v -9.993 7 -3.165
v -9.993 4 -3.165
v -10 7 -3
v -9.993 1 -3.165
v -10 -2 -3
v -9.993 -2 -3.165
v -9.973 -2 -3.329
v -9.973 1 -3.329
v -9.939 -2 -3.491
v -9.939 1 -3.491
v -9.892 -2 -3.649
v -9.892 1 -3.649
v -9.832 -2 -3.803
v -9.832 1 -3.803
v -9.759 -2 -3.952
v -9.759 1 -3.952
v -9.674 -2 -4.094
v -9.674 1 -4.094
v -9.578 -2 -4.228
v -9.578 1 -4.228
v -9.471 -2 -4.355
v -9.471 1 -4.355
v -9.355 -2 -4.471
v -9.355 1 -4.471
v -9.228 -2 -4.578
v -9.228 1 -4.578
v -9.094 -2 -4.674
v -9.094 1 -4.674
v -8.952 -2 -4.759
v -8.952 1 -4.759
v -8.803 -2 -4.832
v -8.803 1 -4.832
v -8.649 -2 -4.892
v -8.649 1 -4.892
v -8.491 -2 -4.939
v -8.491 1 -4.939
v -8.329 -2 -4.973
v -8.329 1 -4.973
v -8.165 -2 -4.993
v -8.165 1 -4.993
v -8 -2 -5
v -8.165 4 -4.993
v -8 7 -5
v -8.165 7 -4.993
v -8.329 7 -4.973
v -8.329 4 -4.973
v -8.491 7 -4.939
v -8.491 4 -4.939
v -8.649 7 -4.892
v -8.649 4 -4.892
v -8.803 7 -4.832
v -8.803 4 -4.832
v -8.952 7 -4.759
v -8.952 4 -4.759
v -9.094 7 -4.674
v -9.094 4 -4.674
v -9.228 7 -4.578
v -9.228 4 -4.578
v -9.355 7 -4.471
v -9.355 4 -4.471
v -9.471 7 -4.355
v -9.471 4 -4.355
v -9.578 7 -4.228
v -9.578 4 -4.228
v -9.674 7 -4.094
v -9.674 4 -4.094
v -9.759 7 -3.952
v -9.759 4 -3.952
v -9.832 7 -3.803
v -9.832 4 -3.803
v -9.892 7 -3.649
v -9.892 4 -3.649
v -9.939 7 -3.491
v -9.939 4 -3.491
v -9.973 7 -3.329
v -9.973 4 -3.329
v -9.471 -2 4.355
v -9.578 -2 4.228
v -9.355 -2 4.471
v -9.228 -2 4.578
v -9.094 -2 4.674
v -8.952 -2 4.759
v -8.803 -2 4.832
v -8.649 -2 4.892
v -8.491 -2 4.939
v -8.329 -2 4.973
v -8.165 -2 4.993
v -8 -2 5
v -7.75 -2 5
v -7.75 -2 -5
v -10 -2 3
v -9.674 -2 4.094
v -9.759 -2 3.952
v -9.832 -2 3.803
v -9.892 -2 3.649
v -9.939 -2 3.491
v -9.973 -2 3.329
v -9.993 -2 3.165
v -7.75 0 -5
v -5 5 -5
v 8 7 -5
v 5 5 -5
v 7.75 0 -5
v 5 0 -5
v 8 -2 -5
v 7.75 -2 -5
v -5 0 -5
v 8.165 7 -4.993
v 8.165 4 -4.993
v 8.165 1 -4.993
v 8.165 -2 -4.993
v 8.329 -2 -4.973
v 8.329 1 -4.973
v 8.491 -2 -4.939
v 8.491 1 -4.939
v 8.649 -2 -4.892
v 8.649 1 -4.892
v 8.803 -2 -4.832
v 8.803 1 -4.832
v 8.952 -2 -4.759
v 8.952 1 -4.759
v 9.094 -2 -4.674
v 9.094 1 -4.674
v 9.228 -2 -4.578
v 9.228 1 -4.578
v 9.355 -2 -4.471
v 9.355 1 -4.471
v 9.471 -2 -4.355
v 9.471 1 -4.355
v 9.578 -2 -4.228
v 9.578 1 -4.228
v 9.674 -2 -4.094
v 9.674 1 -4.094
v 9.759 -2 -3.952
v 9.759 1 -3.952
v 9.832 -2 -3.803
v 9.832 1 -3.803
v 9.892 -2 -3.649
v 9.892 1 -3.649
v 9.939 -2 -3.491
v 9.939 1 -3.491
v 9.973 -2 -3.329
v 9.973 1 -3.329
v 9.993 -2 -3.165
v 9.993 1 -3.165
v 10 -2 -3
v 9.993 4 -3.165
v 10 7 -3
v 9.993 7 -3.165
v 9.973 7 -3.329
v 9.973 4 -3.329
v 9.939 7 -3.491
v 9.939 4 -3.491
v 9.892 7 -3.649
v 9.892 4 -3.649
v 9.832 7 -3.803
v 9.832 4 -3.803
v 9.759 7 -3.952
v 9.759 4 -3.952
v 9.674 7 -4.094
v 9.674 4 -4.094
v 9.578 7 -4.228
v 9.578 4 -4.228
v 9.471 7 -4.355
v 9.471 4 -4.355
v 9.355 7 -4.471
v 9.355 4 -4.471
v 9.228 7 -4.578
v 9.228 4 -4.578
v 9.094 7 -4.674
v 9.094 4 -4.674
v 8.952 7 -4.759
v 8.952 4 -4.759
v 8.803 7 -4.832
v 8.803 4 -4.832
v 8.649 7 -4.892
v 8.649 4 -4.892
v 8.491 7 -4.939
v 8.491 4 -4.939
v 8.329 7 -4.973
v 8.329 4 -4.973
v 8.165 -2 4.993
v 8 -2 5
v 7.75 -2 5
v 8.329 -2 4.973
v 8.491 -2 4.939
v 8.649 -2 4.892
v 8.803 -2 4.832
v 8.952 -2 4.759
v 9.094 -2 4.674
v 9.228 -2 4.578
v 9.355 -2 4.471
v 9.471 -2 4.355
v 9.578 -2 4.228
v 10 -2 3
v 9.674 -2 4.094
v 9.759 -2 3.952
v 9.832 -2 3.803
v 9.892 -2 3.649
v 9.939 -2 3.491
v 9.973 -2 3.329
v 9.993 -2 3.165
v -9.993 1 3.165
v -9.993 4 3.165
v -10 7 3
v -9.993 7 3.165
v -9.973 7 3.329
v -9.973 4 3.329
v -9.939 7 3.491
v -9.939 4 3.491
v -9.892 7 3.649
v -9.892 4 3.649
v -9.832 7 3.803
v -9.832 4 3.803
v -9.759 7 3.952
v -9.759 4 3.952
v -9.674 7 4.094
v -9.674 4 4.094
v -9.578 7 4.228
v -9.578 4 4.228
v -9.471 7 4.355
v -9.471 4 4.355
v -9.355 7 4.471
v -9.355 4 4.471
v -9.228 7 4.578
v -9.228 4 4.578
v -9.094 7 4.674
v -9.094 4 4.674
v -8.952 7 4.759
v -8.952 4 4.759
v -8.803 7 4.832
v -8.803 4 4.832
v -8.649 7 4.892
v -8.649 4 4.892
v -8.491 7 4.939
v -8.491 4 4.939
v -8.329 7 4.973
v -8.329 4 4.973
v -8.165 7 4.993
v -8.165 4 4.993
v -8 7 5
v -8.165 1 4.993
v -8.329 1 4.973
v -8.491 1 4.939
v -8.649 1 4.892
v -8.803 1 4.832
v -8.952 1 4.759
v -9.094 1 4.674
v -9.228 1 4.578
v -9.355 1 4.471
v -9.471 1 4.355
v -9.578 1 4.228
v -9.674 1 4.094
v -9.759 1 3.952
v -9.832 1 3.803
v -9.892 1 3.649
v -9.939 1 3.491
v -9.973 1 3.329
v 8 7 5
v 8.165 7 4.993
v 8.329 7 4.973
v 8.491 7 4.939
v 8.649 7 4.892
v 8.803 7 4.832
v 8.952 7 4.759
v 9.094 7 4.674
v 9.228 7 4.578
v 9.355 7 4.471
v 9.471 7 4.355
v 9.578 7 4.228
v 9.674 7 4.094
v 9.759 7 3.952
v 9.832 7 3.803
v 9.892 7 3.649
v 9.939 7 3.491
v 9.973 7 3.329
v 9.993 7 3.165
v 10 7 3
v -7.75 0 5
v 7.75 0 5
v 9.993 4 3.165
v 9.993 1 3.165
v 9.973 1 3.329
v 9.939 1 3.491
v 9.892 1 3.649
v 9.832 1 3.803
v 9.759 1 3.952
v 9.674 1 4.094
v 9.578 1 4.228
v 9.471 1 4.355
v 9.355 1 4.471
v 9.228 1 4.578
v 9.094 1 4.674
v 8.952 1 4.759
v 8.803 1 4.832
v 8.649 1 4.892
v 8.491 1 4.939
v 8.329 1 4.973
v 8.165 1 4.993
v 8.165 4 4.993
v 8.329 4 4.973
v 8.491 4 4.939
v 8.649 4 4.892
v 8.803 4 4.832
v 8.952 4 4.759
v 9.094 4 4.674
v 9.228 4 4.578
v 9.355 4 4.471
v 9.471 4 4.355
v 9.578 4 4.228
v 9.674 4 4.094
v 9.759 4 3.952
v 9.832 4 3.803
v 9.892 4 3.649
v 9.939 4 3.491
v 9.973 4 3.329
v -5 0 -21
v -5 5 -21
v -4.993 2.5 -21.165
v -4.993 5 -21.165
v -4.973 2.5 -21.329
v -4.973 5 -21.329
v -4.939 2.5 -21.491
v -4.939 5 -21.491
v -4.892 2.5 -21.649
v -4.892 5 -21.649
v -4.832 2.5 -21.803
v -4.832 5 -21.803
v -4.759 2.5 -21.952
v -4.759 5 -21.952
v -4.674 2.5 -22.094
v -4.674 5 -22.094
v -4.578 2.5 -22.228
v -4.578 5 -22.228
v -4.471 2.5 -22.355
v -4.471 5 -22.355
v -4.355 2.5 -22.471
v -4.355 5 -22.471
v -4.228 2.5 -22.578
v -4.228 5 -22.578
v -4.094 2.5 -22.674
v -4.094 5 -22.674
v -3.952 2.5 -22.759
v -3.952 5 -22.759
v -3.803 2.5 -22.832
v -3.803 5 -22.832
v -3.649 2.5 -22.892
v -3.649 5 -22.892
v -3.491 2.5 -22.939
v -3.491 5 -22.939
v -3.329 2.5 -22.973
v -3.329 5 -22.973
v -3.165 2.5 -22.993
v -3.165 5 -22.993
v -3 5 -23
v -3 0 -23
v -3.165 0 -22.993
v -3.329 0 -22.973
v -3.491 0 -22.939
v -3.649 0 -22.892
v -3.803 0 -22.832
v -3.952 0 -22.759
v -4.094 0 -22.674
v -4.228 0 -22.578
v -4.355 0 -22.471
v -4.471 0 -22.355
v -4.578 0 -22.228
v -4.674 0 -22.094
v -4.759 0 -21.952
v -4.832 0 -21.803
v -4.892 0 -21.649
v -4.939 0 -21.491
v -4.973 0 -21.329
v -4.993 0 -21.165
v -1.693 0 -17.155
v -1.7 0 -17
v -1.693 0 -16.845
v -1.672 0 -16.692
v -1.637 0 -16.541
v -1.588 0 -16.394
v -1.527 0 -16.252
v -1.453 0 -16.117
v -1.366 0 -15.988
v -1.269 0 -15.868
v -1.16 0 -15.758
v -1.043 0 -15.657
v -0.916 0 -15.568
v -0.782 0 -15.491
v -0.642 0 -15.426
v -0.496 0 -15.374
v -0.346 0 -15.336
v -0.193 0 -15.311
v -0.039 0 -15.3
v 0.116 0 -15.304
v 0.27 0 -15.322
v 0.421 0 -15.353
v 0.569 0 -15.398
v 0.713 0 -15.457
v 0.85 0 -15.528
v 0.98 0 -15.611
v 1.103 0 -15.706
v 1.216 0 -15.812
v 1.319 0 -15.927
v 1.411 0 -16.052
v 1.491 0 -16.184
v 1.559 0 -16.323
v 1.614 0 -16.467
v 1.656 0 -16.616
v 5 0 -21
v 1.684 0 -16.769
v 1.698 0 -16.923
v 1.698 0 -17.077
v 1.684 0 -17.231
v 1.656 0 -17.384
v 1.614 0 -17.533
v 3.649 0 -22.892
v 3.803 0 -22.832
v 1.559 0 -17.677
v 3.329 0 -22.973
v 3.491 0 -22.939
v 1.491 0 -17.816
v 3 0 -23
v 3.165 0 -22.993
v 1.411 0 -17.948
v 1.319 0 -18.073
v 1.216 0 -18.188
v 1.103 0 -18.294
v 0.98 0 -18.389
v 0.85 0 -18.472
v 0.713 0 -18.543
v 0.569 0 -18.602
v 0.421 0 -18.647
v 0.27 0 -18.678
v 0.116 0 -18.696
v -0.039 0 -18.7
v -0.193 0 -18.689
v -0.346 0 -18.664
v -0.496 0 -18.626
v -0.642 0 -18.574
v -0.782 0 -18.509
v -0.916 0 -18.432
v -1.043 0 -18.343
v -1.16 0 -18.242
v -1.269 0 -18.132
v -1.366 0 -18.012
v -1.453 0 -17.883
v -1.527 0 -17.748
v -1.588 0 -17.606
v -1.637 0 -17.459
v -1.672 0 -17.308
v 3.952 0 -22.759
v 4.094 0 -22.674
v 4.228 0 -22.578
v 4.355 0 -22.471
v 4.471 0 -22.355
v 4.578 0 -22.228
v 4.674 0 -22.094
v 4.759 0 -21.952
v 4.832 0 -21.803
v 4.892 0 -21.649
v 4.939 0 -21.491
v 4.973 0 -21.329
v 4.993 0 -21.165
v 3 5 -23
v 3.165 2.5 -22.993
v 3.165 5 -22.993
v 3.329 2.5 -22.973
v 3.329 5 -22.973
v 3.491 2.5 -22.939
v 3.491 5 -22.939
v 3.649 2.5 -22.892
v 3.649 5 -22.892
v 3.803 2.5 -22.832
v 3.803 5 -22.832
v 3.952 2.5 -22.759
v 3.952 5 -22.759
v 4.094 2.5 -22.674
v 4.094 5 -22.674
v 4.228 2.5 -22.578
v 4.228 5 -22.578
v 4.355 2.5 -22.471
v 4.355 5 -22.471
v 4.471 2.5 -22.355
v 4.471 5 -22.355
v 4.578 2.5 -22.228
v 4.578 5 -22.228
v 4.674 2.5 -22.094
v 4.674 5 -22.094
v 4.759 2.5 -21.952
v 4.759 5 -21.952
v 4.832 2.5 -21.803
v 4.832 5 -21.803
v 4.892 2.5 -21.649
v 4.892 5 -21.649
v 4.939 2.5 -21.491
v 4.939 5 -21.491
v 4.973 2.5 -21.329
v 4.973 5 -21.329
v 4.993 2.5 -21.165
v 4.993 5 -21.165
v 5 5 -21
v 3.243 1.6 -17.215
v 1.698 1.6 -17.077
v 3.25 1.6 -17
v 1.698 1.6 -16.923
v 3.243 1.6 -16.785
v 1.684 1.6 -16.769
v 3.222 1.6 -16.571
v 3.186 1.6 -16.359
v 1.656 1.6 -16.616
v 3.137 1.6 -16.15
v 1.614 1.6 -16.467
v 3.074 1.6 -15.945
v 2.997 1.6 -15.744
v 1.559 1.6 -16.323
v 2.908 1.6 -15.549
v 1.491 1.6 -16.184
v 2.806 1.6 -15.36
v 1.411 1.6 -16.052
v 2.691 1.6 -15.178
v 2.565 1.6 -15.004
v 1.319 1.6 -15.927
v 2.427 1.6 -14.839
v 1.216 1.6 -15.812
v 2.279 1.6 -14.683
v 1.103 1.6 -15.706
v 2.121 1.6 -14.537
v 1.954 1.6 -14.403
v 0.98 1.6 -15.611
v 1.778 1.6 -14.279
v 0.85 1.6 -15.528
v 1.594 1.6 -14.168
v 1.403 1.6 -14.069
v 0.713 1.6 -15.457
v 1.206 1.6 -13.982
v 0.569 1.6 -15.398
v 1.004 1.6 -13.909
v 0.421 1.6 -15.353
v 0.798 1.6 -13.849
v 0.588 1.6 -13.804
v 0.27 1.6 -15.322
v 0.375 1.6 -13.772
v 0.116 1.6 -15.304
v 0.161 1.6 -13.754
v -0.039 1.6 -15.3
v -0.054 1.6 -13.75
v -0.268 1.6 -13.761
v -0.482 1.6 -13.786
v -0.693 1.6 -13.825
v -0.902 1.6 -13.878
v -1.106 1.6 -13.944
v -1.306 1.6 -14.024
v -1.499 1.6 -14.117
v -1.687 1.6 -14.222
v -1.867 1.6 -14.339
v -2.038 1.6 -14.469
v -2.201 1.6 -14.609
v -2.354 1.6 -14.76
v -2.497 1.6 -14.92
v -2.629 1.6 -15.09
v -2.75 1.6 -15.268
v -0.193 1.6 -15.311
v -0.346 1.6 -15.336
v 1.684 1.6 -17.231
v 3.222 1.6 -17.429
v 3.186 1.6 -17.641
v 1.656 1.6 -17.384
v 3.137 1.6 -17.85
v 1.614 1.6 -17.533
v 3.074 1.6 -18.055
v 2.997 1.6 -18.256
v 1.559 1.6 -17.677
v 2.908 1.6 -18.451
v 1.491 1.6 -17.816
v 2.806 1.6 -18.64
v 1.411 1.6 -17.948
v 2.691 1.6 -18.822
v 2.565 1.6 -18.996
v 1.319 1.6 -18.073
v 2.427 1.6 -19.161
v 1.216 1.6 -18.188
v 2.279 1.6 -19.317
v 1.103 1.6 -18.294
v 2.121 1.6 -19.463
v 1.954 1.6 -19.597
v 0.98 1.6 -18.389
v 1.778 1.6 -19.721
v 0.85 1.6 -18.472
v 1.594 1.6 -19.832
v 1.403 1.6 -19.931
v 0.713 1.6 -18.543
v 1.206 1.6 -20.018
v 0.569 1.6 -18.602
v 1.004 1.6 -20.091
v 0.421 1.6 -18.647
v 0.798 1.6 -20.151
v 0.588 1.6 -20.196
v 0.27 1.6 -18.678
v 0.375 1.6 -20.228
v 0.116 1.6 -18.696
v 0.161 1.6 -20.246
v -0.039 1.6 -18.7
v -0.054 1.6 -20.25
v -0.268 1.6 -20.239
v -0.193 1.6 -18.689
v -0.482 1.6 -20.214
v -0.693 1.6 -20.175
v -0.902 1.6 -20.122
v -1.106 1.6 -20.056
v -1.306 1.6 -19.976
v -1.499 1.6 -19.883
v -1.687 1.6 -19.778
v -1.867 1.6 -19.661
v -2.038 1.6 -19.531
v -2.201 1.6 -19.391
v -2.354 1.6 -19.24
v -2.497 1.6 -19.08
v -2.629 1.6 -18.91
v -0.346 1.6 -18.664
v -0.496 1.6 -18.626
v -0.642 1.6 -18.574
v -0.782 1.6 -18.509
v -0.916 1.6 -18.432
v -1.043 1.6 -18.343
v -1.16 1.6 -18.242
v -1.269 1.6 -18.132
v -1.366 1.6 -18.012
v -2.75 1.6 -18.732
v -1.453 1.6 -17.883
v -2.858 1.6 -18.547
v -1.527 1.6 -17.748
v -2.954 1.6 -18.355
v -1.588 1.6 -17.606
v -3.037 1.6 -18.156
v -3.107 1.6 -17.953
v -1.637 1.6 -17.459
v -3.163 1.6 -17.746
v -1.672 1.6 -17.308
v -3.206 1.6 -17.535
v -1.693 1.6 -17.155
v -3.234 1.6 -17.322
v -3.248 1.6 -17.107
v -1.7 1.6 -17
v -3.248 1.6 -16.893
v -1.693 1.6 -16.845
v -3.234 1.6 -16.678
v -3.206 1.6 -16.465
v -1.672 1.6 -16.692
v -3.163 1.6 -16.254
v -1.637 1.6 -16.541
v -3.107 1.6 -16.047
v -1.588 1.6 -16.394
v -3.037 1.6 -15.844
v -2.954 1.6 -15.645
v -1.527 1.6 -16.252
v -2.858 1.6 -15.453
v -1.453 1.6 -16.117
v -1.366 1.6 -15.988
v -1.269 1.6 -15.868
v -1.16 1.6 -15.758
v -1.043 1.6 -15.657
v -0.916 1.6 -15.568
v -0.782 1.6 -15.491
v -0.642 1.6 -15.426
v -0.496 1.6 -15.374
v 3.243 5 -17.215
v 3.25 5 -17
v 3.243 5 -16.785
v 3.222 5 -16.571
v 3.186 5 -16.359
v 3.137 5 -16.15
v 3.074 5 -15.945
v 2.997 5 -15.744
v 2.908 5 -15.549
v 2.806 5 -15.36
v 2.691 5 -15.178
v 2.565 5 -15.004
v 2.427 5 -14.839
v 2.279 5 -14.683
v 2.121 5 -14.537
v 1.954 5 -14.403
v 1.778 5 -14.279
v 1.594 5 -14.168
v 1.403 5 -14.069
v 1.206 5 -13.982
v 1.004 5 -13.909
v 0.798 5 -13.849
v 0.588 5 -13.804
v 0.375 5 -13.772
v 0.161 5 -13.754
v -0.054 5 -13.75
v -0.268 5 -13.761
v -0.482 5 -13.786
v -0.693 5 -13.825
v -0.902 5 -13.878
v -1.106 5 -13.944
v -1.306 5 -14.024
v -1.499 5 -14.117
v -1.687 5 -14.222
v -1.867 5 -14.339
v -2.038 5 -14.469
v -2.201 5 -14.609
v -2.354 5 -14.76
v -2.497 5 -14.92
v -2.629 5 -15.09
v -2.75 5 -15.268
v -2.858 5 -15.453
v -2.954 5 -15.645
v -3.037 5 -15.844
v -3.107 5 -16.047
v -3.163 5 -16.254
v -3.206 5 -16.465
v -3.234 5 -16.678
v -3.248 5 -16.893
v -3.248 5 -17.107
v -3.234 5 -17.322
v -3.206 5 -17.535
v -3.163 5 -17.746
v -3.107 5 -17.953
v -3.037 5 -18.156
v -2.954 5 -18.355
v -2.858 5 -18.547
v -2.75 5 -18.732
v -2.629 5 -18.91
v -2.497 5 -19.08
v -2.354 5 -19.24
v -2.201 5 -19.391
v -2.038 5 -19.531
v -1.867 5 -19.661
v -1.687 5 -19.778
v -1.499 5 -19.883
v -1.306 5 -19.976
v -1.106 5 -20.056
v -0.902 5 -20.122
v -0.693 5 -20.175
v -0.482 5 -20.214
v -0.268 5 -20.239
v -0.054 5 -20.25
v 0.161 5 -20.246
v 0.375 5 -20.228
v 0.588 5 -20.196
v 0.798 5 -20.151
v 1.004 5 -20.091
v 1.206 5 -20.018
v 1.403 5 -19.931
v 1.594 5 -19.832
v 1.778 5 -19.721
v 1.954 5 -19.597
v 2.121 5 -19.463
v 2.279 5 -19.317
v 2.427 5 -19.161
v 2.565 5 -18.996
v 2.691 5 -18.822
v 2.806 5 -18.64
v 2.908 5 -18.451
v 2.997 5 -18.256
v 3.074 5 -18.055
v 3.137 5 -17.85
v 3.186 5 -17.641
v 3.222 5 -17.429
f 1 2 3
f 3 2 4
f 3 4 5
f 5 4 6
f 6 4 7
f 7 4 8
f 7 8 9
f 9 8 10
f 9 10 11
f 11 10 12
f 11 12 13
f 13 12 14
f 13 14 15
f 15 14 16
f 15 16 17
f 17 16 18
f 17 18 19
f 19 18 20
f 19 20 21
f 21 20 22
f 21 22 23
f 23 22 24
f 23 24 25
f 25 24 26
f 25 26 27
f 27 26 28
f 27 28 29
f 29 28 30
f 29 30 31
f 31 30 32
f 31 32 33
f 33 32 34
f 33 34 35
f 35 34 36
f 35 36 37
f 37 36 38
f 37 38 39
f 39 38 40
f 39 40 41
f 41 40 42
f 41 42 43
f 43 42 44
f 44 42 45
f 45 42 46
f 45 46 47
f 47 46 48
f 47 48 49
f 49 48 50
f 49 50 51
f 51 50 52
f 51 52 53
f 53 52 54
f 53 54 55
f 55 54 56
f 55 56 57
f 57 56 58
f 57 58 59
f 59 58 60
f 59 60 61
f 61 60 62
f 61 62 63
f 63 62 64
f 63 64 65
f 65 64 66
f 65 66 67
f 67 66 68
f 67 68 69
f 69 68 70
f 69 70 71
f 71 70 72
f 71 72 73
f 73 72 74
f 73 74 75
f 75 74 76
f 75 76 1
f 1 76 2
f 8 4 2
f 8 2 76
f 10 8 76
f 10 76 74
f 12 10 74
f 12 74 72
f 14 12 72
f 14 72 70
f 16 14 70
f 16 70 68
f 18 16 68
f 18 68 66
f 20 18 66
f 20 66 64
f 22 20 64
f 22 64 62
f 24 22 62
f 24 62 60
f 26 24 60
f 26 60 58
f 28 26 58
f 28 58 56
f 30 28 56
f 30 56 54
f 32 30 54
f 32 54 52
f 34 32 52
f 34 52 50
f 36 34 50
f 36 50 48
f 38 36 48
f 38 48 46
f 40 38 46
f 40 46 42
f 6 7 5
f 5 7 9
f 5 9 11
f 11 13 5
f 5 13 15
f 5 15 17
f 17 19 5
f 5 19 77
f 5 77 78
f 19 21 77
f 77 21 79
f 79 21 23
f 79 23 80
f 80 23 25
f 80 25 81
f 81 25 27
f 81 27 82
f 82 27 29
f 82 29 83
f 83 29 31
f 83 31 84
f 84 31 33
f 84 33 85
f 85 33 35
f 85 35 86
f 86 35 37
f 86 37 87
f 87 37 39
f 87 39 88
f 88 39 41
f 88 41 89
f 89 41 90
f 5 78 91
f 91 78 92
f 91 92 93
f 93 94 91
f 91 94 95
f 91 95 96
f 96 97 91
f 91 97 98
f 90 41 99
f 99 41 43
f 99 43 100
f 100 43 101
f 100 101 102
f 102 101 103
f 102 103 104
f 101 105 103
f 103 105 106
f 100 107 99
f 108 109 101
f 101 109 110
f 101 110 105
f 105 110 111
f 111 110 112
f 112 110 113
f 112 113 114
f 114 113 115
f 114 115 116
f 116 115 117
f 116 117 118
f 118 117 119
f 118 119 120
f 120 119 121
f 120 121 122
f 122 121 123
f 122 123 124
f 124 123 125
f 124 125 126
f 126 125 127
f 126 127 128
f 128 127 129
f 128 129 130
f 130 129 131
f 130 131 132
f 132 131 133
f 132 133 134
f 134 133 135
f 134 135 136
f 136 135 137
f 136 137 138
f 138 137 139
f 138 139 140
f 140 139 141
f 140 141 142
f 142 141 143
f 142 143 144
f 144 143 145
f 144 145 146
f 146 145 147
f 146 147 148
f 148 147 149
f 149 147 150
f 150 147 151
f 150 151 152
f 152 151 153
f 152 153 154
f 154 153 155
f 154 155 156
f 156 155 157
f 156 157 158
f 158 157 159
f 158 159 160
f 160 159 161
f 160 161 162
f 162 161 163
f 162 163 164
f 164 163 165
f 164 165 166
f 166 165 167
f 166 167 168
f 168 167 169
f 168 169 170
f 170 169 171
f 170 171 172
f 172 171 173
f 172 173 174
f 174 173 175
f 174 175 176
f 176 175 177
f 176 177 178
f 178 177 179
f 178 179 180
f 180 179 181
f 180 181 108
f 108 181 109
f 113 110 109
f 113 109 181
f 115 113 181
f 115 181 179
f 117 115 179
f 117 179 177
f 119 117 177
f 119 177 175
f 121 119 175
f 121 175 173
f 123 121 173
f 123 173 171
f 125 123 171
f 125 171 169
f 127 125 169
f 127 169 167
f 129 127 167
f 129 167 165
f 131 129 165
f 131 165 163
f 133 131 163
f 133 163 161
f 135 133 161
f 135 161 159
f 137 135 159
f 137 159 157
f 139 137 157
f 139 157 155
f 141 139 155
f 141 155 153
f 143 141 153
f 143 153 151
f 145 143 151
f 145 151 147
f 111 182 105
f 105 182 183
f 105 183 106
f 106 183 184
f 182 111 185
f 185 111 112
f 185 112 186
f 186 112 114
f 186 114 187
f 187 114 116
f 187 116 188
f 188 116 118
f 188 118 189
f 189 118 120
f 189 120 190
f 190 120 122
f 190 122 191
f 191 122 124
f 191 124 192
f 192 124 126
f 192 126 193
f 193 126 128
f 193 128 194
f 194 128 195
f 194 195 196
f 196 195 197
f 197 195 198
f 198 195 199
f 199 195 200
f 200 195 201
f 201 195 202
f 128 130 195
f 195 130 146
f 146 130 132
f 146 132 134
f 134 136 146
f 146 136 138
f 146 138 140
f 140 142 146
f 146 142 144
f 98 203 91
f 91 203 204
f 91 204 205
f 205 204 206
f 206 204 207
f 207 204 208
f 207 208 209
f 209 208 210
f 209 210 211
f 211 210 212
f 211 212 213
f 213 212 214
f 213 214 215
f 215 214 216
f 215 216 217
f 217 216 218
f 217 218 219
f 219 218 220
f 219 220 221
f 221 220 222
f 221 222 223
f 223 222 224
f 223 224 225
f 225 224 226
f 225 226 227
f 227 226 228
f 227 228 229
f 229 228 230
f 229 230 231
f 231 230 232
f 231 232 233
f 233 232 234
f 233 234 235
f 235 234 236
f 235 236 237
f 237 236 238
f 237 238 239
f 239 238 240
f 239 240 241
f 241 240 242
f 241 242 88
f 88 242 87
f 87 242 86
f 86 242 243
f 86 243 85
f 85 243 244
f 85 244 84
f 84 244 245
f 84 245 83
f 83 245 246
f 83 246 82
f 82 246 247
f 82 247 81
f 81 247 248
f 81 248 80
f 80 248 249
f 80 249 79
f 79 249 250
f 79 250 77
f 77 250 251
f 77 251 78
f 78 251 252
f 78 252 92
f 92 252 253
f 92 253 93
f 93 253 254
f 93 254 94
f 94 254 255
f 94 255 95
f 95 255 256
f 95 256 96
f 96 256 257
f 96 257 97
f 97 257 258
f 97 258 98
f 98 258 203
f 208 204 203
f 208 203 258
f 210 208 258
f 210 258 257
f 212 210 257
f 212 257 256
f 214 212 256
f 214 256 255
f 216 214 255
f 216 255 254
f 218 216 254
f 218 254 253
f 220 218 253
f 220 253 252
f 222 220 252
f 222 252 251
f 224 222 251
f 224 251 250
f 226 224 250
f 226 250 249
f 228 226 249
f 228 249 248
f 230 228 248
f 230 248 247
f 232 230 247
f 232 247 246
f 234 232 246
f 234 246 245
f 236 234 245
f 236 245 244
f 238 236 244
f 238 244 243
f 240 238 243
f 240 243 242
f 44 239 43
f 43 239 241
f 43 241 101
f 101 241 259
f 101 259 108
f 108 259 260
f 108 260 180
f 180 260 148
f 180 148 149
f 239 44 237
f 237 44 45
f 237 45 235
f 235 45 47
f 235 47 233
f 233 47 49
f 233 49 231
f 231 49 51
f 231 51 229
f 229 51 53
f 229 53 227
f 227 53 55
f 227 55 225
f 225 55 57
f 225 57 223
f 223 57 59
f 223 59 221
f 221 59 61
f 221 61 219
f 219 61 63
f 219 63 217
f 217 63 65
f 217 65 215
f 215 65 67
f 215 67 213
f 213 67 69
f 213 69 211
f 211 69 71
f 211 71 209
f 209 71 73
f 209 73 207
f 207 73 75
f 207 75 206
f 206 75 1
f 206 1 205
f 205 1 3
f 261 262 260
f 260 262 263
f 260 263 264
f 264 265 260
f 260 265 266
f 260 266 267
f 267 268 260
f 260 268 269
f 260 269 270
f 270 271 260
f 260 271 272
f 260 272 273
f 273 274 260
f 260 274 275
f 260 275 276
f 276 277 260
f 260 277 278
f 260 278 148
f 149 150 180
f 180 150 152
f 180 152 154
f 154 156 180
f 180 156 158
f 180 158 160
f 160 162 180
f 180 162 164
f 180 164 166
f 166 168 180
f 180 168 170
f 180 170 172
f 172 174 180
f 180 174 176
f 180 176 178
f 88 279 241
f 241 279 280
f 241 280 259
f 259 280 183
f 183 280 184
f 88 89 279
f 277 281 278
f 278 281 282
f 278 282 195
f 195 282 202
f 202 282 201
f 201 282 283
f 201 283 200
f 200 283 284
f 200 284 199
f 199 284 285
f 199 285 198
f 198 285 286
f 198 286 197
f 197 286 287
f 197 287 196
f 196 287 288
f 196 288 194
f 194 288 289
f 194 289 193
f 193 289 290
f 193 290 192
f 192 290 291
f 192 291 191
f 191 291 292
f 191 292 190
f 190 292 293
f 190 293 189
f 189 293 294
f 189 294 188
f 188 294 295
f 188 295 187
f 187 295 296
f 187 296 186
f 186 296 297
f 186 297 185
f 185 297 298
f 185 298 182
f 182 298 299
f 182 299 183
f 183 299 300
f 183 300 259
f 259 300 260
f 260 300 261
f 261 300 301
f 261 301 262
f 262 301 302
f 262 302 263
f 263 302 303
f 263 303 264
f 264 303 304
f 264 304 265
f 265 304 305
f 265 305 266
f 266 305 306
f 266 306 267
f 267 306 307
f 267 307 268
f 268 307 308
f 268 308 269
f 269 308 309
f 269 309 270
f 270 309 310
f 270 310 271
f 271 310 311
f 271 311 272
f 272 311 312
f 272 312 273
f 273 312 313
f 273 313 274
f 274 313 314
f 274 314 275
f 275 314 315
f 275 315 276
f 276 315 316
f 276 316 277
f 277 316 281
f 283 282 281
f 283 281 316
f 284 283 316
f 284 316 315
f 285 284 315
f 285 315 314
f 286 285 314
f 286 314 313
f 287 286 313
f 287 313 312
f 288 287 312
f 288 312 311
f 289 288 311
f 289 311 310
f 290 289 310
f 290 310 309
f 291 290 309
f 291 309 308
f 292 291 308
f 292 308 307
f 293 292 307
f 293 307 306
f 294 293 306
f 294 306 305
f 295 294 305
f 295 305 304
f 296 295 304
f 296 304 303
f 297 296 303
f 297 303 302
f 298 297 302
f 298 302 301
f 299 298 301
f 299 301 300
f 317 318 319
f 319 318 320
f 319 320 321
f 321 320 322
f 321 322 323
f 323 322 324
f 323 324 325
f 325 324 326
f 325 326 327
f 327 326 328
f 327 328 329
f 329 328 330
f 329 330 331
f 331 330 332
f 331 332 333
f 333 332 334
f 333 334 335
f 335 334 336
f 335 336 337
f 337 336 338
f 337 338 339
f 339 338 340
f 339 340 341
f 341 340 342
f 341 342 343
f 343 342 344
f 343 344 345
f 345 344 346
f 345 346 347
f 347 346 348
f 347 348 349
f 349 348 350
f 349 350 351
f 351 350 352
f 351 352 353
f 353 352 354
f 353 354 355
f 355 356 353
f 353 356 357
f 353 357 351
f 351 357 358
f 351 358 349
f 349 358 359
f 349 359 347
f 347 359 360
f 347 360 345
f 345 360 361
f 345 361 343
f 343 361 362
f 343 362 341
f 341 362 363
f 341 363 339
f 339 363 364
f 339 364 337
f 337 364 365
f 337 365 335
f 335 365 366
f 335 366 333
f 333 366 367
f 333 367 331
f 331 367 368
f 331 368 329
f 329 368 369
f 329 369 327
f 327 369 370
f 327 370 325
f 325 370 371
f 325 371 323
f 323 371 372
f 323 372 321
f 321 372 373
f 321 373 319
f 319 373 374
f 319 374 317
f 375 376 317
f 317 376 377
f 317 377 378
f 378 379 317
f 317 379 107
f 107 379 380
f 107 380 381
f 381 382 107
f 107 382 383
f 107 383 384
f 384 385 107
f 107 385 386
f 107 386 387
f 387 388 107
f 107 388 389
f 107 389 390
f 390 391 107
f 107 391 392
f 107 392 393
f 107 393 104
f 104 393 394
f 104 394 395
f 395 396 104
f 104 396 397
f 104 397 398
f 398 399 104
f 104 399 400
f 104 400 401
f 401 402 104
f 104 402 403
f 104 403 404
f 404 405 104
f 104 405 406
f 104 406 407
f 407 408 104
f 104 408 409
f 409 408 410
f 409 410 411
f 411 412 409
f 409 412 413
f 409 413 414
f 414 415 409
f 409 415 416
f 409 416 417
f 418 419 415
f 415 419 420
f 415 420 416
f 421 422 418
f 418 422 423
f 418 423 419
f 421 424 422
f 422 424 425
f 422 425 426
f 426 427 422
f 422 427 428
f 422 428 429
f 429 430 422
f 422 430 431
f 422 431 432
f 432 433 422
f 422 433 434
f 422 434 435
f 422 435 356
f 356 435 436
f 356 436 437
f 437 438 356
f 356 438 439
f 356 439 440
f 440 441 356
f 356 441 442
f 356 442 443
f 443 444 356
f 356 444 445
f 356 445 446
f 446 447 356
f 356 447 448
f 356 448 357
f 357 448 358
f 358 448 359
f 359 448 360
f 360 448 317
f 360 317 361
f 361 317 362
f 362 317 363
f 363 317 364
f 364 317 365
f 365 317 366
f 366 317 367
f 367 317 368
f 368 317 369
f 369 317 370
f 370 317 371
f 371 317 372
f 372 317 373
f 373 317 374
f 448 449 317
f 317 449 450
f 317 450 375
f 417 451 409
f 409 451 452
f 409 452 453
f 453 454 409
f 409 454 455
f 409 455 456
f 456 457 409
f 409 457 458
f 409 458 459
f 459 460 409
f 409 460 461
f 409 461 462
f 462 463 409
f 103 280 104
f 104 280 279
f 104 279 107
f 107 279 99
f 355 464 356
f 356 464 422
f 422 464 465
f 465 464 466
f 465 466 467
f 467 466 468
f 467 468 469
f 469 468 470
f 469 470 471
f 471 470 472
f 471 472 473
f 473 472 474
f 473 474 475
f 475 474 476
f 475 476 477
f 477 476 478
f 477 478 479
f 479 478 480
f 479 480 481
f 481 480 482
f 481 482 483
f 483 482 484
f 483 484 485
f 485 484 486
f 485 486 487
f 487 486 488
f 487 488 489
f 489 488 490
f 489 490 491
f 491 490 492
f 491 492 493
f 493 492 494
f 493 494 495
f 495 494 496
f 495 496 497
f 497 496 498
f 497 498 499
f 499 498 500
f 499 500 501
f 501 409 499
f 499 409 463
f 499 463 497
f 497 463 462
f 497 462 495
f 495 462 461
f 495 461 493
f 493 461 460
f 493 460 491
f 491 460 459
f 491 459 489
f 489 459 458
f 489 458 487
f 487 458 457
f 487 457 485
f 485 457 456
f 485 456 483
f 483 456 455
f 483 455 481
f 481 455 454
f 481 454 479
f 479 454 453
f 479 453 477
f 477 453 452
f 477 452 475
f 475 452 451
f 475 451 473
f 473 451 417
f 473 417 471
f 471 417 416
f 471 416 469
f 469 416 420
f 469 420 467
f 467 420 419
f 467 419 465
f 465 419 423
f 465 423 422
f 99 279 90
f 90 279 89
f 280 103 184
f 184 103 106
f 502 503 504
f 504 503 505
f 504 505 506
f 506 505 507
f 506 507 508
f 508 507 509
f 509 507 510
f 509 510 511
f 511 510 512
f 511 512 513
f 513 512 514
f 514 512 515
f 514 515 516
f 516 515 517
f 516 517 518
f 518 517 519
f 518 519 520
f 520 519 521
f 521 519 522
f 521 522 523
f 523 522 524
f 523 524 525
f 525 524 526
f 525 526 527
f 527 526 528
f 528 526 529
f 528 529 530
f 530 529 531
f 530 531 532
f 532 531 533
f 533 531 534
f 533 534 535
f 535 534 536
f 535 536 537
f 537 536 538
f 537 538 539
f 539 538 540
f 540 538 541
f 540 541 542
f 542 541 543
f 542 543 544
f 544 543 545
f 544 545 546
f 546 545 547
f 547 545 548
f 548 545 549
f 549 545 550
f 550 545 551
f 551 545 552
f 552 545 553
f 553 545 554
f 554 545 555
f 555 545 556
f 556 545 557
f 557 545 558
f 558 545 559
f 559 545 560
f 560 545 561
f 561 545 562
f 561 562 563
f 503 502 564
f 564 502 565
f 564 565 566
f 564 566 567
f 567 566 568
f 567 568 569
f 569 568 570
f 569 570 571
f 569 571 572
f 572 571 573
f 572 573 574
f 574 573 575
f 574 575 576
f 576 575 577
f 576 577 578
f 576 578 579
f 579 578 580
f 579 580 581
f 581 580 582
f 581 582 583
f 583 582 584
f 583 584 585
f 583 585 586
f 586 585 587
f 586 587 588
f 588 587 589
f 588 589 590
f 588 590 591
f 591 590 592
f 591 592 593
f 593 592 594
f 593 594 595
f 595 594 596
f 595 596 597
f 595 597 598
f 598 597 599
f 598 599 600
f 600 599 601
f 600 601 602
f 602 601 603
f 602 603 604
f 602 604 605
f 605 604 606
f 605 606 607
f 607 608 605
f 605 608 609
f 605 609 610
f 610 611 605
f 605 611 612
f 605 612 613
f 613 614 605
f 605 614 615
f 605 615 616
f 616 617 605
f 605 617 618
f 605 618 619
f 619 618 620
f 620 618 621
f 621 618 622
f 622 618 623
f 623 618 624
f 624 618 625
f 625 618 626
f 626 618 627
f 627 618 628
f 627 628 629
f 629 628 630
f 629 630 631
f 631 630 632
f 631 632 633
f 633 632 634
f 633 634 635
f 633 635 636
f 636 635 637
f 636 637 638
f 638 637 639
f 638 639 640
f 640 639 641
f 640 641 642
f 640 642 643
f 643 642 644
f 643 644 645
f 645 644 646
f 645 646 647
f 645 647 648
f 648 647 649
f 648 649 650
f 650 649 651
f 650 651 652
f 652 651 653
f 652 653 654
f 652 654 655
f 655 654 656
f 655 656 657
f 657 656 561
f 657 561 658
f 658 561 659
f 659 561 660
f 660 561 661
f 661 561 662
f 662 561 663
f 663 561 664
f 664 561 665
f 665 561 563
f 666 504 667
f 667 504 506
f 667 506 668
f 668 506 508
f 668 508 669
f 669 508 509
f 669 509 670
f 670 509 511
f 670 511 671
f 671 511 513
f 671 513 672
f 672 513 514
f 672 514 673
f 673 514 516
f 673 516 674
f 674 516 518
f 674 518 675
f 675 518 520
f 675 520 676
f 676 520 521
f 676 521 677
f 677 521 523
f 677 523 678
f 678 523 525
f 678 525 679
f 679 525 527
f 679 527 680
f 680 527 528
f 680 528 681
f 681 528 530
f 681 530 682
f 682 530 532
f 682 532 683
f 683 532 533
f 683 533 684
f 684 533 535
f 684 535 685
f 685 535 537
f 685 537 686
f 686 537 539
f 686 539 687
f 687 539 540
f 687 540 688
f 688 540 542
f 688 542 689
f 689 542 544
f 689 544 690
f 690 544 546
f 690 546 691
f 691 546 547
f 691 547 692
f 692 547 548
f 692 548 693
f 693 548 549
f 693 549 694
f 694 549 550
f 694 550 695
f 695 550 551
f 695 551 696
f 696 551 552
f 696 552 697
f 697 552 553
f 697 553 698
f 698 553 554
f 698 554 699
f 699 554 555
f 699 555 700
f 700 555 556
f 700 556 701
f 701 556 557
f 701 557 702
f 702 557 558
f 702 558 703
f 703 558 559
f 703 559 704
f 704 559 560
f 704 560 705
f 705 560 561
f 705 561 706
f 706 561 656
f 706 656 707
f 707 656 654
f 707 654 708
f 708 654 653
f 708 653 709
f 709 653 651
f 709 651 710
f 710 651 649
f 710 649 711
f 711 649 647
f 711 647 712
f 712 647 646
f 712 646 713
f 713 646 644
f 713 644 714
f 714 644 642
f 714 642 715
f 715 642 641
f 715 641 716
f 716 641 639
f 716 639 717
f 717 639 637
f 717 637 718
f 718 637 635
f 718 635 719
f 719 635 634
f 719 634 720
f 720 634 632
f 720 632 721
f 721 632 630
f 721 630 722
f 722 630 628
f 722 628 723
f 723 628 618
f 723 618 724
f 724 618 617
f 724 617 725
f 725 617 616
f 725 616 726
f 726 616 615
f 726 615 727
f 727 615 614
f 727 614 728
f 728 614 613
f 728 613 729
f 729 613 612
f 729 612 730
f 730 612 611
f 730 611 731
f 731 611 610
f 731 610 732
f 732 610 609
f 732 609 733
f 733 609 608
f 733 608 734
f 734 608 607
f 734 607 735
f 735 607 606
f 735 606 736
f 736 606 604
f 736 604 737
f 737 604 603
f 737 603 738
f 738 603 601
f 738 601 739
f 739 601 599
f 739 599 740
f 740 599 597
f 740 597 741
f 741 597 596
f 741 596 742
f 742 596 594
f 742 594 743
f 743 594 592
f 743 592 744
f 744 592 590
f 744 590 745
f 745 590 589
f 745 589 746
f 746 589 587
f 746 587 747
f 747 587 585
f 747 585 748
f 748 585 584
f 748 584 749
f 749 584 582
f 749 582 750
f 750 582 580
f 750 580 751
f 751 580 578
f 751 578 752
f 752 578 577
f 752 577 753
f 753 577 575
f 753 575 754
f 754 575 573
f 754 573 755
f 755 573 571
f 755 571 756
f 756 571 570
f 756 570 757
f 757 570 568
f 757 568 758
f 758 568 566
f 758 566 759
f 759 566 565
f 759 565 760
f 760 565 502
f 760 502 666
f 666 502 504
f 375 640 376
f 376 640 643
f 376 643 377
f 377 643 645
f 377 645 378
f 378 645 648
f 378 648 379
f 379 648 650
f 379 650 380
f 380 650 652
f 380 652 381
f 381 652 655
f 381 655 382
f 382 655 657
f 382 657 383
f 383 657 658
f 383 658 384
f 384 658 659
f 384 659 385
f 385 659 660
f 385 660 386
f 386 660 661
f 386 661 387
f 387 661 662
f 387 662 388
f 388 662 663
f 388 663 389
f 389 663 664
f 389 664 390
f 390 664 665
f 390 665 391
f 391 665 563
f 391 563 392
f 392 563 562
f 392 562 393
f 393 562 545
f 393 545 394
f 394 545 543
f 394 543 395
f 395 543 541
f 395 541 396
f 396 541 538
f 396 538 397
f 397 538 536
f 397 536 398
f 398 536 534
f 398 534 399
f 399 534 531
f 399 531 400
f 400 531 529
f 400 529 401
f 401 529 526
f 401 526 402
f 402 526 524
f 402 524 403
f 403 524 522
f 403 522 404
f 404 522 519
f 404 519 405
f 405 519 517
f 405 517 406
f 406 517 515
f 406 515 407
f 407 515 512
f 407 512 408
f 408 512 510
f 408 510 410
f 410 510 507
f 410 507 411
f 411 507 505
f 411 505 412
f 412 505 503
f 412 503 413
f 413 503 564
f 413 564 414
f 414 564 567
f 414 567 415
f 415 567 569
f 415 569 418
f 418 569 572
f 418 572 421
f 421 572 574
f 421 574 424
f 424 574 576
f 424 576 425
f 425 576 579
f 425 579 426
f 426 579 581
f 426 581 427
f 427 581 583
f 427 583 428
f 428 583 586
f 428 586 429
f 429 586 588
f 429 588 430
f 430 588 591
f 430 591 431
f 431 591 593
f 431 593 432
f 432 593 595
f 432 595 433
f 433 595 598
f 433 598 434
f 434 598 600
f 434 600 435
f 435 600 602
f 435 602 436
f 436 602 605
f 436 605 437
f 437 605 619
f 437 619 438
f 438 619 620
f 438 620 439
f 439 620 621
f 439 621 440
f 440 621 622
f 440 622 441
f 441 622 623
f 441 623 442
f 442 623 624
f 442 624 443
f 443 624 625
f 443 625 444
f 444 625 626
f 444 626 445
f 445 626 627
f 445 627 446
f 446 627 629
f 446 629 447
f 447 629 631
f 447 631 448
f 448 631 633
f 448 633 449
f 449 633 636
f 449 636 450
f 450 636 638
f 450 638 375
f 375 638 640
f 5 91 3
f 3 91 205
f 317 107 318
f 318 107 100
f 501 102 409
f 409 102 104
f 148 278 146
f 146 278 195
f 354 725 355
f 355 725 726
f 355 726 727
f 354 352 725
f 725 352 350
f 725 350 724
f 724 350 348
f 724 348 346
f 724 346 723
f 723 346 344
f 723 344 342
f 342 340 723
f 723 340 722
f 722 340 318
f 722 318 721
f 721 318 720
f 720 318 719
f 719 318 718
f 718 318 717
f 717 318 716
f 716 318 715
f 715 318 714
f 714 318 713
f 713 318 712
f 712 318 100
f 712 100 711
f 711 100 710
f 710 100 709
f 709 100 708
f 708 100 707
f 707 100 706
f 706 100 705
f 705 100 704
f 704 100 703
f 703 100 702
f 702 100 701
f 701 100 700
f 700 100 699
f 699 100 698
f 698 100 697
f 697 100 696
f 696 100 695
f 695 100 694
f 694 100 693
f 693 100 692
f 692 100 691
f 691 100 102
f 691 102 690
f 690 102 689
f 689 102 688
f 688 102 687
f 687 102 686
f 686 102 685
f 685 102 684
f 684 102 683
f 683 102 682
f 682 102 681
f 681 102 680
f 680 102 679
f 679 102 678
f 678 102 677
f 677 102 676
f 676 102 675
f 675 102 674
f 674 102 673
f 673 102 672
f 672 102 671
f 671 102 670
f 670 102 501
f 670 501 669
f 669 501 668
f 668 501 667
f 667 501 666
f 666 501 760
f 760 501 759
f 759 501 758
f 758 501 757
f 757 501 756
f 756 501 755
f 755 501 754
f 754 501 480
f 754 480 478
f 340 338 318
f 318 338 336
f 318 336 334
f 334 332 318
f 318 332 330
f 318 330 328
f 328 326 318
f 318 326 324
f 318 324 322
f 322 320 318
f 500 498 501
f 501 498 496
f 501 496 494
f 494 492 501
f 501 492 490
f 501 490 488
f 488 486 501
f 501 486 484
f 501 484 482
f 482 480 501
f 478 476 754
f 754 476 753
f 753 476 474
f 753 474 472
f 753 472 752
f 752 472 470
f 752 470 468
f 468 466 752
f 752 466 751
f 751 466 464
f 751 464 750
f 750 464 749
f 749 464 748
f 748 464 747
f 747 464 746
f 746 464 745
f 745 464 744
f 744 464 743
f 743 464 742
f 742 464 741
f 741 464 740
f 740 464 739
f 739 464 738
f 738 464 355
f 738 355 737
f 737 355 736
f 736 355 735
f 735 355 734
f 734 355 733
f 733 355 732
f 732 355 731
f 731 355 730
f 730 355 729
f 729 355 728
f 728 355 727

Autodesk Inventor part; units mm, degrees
ref_plane "YZ Plane" through (0, 0, 0) normal (1, 0, 0) x (0, 1, 0)
ref_plane "XZ Plane" through (0, 0, 0) normal (0, 1, 0) x (-1, 0, 0)
ref_plane "XY Plane" through (0, 0, 0) normal (0, 0, 1) x (1, 0, 0)
sketch "Skizze1" plane through (0, 0, 0) normal (0, 1, 0) x (-1, 0, 0)
  line L0 (0, -28.6) -> (0, 10.6) projected
  line L1 (-14, 0) -> (14, 0) projected
  line L2 (-10, 5) -> (10, 5)
  line L3 (10, 5) -> (10, -5)
  line L4 (10, -5) -> (-10, -5)
  line L5 (-10, -5) -> (-10, 5)
  line L6 (-10, 5) -> (10, -5) construction
  line L7 (10, 5) -> (-10, -5) construction
  line L8 (-5, -5) -> (5, -5)
  line L9 (5, -5) -> (5, -23)
  line L10 (5, -23) -> (-5, -23)
  line L11 (-5, -23) -> (-5, -5)
  line L12 (-5, -5) -> (5, -23) construction
  line L13 (5, -5) -> (-5, -23) construction
  point P0 (0, 0)
  point P1 (0, -14)
  point P2 (-5, -5)
  point P3 (5, -5)
  dimension "d0" = 20
  dimension "d1" = 10
  dimension "d2" = 10
  dimension "d3" = 18
extrude "Extrusion1" add sketch "Skizze1" along normal blind 5
sketch "Skizze2" plane through (0, 5, 0) normal (0, 1, 0) x (1, 0, 0)
  line L0 (0, 28.6) -> (0, -10.6) projected
  line L1 (5, 23) -> (-5, 23) projected
  line L2 (-10, -5) -> (10, -5) projected
  point P0 (0, 0)
  point P1 (0, 17)
  dimension "d14" = 22
hole "Bohrung1" at (0, 5, -17) direction (0, -1, 0) diameter 3.4 end through all counterbore diameter 6.5 counterbore depth 3.4 clearance for "Inbusschraube ISO 4762" size "M3" standard "ISO"
sketch "Skizze3" plane through (0, 5, 0) normal (0, 1, 0) x (1, 0, 0)
  line L0 (-10, -5) -> (10, -5) projected
  line L1 (10, -5) -> (10, 5) projected
  line L2 (-10, -5) -> (10, -5)
  line L3 (10, -5) -> (10, 5)
  line L4 (10, 5) -> (-10, 5)
  line L5 (-10, 5) -> (-10, -5)
  point P0 (0, 0)
extrude "Extrusion2" add sketch "Skizze3" along normal blind 2
sketch "Skizze4" plane through (0, 0, 0) normal (0, -1, 0) x (1, 0, 0)
  line L0 (-10, 5) -> (10, 5) projected
  line L1 (10, -5) -> (5, -5) projected
  line L2 (10, 5) -> (7.75, 5)
  line L3 (7.75, 5) -> (7.75, -5)
  line L4 (7.75, -5) -> (10, -5)
  line L5 (10, -5) -> (10, 5)
  point P0 (0, 0)
  dimension "d17" = 2.25
extrude "Extrusion3" add sketch "Skizze4" along normal blind 2
mirror "Spiegeln1" about plane through (0, 0, 0) normal (1, 0, 0) of "Extrusion3"
fillet "Rundung1" radius 2 4 edges at (5, 2.5, -23) (-5, 2.5, -23) (10, 2.5, 5) (-10, 2.5, 5)
fillet "Rundung2" radius 2 2 edges at (10, 2.5, -5) (-10, 2.5, -5)
properties part number "28_Switch_Holder_Y" material "PET-Kunststoff"
